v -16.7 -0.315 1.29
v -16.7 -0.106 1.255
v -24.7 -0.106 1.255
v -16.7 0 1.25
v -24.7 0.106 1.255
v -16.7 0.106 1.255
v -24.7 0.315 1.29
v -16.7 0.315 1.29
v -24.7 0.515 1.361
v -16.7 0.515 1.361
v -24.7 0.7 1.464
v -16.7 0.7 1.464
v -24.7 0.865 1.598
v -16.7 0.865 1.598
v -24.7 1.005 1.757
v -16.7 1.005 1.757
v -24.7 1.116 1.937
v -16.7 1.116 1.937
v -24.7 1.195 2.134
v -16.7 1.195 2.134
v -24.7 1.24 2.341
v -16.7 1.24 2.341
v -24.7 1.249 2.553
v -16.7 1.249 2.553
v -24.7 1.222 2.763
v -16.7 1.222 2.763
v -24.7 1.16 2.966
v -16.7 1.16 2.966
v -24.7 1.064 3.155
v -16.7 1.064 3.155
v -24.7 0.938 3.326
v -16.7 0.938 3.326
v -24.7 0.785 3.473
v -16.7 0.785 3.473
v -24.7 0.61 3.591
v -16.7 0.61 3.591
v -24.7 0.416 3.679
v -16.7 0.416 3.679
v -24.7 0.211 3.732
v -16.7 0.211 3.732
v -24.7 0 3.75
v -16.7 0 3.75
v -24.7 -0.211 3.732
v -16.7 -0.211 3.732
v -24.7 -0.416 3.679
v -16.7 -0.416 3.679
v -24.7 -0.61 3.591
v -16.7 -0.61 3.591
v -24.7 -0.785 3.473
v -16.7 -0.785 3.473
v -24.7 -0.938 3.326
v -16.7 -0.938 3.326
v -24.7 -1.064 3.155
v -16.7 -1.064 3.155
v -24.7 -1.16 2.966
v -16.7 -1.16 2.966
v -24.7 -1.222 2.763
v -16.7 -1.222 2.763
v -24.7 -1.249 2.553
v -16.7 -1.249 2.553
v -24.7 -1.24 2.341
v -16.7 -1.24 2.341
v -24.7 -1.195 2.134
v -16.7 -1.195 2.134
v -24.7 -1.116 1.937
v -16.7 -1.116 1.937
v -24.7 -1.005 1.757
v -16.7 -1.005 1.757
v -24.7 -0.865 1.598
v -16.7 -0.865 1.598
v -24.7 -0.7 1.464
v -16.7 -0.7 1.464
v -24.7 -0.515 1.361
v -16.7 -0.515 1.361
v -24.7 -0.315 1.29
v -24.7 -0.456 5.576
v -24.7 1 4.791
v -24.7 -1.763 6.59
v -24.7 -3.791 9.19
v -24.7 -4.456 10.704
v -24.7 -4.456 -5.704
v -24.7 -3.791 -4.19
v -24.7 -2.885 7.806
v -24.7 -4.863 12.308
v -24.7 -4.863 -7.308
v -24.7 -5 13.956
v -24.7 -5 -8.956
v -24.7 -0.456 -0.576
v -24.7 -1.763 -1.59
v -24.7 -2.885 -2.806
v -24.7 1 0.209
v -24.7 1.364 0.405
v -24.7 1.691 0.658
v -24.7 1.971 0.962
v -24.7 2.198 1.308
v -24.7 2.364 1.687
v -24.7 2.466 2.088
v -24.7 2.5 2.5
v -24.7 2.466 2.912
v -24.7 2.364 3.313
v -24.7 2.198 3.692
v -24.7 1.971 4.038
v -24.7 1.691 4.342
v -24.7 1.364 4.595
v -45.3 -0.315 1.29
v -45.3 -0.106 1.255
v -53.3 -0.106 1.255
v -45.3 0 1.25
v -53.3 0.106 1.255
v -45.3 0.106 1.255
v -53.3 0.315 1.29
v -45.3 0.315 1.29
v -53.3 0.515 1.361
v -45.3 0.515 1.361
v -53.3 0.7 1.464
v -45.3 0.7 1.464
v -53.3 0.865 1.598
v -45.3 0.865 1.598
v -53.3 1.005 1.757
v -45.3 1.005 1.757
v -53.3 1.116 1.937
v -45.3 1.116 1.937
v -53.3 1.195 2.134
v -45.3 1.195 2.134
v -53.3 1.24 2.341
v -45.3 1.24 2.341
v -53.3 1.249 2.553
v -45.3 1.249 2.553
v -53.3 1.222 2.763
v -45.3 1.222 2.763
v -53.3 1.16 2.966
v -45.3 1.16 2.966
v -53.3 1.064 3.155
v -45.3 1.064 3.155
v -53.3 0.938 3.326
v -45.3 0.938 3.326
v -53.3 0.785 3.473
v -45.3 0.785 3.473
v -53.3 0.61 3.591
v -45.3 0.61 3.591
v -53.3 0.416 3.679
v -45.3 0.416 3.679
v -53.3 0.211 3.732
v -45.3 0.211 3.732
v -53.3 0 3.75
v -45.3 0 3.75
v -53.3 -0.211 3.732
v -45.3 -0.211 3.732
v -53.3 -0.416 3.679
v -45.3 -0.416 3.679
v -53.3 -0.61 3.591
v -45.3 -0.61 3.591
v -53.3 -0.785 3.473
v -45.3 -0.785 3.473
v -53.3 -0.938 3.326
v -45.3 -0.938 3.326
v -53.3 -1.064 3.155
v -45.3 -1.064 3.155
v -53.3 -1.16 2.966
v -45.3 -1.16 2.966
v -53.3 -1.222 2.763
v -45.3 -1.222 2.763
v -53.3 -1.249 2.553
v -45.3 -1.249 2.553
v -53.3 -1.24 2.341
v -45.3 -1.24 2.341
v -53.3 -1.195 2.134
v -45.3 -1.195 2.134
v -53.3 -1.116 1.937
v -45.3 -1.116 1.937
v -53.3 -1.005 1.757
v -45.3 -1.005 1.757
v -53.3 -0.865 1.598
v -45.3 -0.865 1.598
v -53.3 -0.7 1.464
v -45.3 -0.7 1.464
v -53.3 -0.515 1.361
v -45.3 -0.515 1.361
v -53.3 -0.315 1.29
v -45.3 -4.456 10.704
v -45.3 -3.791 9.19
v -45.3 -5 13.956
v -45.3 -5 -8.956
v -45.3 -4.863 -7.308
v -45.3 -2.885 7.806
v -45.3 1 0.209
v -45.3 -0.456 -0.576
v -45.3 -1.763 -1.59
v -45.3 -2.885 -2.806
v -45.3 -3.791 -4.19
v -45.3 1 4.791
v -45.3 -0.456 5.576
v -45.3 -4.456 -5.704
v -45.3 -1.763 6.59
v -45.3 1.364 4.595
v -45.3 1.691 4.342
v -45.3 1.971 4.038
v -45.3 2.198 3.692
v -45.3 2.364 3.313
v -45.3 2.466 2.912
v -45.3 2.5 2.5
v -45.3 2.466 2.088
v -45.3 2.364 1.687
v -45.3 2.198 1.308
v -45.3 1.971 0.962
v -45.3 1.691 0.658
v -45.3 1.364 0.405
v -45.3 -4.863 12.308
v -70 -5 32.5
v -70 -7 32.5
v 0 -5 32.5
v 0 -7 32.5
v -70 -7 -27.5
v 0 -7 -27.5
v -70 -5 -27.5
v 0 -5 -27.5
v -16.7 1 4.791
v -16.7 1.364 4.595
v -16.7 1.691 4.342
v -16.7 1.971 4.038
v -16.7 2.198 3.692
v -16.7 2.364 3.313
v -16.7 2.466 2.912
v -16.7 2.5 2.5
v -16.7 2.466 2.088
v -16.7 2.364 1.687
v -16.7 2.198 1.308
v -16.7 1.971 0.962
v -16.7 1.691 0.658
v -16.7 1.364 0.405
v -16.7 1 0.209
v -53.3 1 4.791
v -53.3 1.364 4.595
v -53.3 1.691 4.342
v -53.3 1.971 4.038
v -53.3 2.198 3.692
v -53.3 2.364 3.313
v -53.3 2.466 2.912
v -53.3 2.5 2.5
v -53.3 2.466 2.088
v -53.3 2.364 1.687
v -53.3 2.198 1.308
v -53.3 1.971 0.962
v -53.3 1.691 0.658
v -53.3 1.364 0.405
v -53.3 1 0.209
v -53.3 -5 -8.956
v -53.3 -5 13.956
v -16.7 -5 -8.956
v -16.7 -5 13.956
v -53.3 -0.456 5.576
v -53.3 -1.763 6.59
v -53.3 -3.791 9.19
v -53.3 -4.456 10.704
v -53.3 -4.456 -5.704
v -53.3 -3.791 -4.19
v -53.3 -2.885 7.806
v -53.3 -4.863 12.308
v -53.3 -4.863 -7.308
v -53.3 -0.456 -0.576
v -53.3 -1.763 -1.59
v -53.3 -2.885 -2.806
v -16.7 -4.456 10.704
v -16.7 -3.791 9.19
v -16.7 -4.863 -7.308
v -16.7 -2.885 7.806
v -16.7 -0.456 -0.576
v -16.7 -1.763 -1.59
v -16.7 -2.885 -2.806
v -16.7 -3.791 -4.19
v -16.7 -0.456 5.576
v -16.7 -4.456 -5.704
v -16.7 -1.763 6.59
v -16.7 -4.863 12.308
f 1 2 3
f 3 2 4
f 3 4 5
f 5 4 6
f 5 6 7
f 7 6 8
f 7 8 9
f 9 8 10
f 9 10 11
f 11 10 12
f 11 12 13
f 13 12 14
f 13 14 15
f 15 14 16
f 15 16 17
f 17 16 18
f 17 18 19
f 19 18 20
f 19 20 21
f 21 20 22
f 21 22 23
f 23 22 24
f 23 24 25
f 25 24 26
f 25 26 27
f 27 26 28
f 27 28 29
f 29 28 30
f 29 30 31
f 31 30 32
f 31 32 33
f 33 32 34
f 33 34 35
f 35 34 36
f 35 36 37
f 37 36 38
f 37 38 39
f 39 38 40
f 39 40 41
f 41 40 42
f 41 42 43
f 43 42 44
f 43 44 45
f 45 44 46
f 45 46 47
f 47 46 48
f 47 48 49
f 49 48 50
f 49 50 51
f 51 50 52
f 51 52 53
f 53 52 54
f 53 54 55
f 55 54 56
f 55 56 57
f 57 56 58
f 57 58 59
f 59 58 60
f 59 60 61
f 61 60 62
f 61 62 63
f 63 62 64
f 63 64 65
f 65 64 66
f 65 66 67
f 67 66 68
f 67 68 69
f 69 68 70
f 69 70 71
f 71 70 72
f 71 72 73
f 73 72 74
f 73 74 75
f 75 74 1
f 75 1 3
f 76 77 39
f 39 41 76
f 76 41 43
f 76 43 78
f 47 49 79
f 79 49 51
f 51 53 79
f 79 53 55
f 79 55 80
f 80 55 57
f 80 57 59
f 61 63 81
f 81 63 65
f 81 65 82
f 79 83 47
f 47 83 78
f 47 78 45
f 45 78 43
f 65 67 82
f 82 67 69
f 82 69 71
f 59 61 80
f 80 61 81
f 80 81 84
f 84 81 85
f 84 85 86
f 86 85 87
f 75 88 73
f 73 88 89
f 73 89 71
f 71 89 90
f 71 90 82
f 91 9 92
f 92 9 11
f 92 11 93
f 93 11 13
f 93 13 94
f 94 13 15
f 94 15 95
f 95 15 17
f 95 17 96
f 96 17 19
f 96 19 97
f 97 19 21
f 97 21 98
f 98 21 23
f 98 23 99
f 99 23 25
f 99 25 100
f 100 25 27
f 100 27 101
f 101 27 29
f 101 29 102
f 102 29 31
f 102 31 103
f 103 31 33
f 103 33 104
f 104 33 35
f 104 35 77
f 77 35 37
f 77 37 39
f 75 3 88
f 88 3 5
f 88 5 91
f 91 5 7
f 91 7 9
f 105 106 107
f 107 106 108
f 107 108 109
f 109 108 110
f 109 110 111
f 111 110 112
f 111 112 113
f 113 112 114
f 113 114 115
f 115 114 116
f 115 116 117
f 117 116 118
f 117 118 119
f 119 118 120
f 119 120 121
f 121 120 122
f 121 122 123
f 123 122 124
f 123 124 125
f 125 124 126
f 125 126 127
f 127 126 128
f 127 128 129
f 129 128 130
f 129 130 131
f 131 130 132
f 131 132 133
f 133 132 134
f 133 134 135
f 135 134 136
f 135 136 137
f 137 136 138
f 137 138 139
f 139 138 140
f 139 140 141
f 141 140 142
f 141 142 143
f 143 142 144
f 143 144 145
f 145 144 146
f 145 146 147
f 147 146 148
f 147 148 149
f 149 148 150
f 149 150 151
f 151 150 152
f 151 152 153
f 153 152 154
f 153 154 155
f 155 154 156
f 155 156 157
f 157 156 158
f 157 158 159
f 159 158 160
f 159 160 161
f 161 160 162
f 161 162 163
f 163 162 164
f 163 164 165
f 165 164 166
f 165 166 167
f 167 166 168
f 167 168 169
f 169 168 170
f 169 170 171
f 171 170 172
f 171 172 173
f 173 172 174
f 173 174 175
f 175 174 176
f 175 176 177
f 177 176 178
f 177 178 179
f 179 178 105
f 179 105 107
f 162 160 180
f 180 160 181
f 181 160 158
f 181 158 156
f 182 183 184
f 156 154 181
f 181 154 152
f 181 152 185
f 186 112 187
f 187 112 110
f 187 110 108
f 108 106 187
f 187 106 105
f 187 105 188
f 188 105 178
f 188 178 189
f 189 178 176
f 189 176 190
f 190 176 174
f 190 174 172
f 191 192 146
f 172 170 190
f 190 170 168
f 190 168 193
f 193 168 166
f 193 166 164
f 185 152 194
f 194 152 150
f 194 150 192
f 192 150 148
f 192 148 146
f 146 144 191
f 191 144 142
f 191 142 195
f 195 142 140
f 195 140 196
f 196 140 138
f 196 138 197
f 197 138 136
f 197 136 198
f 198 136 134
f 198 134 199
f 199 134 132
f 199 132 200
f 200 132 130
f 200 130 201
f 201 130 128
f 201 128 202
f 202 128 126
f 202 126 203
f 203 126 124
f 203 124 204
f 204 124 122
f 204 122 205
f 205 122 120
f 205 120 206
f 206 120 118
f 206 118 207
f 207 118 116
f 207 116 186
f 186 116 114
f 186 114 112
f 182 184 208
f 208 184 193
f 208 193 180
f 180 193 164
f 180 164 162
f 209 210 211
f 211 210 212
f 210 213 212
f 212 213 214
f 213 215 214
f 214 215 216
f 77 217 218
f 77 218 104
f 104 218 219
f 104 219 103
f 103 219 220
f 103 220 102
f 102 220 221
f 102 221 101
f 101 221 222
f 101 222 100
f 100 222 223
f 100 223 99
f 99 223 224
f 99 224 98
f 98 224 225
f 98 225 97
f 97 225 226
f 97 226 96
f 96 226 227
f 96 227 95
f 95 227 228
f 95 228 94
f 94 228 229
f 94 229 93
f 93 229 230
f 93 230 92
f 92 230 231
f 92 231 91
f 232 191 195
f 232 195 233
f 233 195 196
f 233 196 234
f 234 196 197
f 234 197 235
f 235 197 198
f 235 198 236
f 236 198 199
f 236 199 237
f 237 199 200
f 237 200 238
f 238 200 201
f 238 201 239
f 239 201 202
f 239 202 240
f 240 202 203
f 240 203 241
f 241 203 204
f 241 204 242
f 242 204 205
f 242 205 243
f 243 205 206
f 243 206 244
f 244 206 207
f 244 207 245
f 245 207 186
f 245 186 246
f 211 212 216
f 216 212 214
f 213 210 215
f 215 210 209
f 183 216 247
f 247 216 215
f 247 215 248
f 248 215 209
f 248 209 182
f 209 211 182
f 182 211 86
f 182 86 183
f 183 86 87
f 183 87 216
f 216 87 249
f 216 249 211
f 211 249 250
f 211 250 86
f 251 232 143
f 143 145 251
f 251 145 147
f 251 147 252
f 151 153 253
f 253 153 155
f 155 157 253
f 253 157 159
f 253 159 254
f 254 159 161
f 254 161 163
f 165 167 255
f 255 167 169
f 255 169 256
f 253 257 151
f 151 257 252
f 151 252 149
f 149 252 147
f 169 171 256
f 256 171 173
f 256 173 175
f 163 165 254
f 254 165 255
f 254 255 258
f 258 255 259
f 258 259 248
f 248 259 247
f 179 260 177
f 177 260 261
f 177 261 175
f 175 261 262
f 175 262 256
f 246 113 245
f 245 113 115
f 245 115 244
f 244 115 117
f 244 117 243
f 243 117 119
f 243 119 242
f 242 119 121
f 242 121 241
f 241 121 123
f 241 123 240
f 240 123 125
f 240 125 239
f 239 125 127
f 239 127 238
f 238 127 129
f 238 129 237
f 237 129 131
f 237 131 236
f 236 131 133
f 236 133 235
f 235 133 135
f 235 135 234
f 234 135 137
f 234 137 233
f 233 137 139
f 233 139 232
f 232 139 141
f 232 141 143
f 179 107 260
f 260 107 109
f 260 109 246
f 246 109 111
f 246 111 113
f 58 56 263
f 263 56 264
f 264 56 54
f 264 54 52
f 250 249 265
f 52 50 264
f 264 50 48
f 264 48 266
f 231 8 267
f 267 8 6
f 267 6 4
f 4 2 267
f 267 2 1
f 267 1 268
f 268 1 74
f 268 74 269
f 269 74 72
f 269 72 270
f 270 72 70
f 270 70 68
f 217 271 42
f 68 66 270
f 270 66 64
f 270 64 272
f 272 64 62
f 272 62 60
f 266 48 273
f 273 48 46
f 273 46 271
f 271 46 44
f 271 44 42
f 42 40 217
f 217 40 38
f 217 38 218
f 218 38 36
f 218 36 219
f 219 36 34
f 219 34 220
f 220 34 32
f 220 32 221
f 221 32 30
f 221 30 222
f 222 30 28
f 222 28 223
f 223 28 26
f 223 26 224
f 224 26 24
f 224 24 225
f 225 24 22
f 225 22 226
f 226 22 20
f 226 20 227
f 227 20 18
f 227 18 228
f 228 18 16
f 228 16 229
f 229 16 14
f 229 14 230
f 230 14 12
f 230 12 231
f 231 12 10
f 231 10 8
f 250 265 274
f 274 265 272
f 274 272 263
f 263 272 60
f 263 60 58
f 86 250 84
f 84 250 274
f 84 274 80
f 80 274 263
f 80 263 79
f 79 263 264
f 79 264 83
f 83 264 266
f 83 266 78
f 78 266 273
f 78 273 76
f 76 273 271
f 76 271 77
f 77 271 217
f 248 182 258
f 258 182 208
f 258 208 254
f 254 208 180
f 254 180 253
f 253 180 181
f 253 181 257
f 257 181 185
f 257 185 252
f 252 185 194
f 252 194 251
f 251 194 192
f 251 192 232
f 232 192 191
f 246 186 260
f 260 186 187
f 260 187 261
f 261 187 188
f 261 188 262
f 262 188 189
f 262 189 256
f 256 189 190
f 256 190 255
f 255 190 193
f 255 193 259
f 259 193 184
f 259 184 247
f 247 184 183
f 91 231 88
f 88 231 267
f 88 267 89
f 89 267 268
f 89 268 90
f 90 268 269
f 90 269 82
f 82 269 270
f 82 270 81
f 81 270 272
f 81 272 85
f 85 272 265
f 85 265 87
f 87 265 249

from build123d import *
from build123d.topology import SkipClean

# Parameters (mm, degrees)
SKETCH1_W           = 20
SKETCH1_H           = 60
BOSS_EXTRUDE1_DEPTH = 5
SKETCH2_R           = 2.5
SKETCH2_R_2         = 1.25
BOSS_EXTRUDE2_DEPTH = 20
CUT_EXTRUDE1_START  = -29
SKETCH3_R           = 1.25
CUT_EXTRUDE1_DEPTH  = 29
SKETCH4_R           = 2.5
SKETCH4_R_2         = 1.25
BOSS_EXTRUDE3_DEPTH = 20
CUT_EXTRUDE2_START  = -29
SKETCH5_R           = 1.25
CUT_EXTRUDE2_DEPTH  = 29
BOSS_EXTRUDE4_START = 70
SKETCH7_R           = 1.25
BOSS_EXTRUDE4_DEPTH = 70
SKETCH8_W           = 20.6
SKETCH8_H           = 18.256228475
SKETCH8_W_2         = 16.7
SKETCH8_H_2         = 28.46865204
SKETCH8_H_3         = 26.746757763
CUT_EXTRUDE4_DEPTH  = 84
SKETCH9_W           = 45.88716948
SKETCH9_H           = 69.445914147
CUT_EXTRUDE5_DEPTH  = 115
FILLET1_R           = 10


with BuildPart() as part:
    # Sketch1 → Boss-Extrude1 (new body)
    with BuildSketch(Plane.XY):
        with Locations((10, 30)):
            Rectangle(SKETCH1_W, SKETCH1_H)
    extrude(amount=BOSS_EXTRUDE1_DEPTH)

    # Sketch2 → Boss-Extrude2 (add)
    with BuildSketch(Plane(origin=(20, 0, 0), x_dir=(0, 0, -1), z_dir=(1, 0, 0))):
        with Locations((-2.5, 60)):
            Circle(SKETCH2_R)
        with Locations((-2.5, 60)):
            Circle(SKETCH2_R_2, mode=Mode.SUBTRACT)
    extrude(amount=-BOSS_EXTRUDE2_DEPTH)

    # Sketch3 → Cut-Extrude1 (cut)
    with SkipClean():  # the faces are left unmerged after this step: merging them gives an invalid solid
        with BuildSketch(Plane.ZY.offset(CUT_EXTRUDE1_START)):
            with Locations(Location((2.5, 60, 0), (0, 0, 180))):
                Circle(SKETCH3_R)
        extrude(amount=CUT_EXTRUDE1_DEPTH, mode=Mode.SUBTRACT)

    # Sketch4 → Boss-Extrude3 (add)
    with BuildSketch(Plane.ZY):
        with Locations((2.5, 0)):
            Circle(SKETCH4_R)
        with Locations((2.5, 0)):
            Circle(SKETCH4_R_2, mode=Mode.SUBTRACT)
    extrude(amount=-BOSS_EXTRUDE3_DEPTH)

    # Sketch5 → Cut-Extrude2 (cut)
    with SkipClean():  # the faces are left unmerged after this step: merging them gives an invalid solid
        with BuildSketch(Plane(origin=(20, 0, 0), x_dir=(0, 0, -1), z_dir=(1, 0, 0)).offset(CUT_EXTRUDE2_START)):
            with Locations(Location((-2.5, 0, 0), (0, 0, 180))):
                Circle(SKETCH5_R)
        extrude(amount=CUT_EXTRUDE2_DEPTH, mode=Mode.SUBTRACT)

    # Sketch7 → Boss-Extrude4 (add)
    # profile 1 of 2: a face of its own
    with SkipClean():  # the faces are left unmerged after this step: merging them gives an invalid solid
        with BuildSketch(Plane.ZY.offset(BOSS_EXTRUDE4_START)):
            with BuildLine():
                Line((0, -5), (-27.5, -5))
                Line((-27.5, -5), (-27.5, -7))
                Line((-27.5, -7), (32.5, -7))
                Line((32.5, -7), (32.5, -5))
                Line((32.5, -5), (5, -5))
                Line((5, -5), (5, 0))
                ThreePointArc((5, 0), (2.5, -2.5), (0, 0))
                Line((0, 0), (0, -5))
            make_face()
        # profile 2 of 2: a face of its own
        with BuildSketch(Plane.ZY.offset(BOSS_EXTRUDE4_START)):
            with BuildLine():
                ThreePointArc((5, 0), (2.5, 2.5), (0, 0))
                ThreePointArc((0, 0), (2.5, -2.5), (5, 0))
            make_face()
            with Locations((2.5, 0)):
                Circle(SKETCH7_R, mode=Mode.SUBTRACT)
        extrude(amount=-BOSS_EXTRUDE4_DEPTH)

    # Sketch8 → Cut-Extrude4 (cut)
    with SkipClean():  # the faces are left unmerged after this step: merging them gives an invalid solid
        with BuildSketch(Plane(origin=(0, -5, 0), x_dir=(1, 0, 0), z_dir=(0, 1, 0))):
            with Locations((-35, -1.601019052)):
                Rectangle(SKETCH8_W, SKETCH8_H)
            with Locations((-8.35, -2.689028032)):
                Rectangle(SKETCH8_W_2, SKETCH8_H_2)
            with Locations((-61.65, -3.54997517)):
                Rectangle(SKETCH8_W_2, SKETCH8_H_3)
        extrude(amount=CUT_EXTRUDE4_DEPTH, mode=Mode.SUBTRACT)


with BuildPart() as cut_extrude4_piece_1:
    # of the separate pieces the step leaves, piece 1, a body of its own (cut_extrude4_pieces)
    add(part.part.solids().sort_by_distance((0, -5, 0))[0])

    # Fillet1
    # the kernel refuses this fillet: 10 mm, written as the material it adds along each edge
    with BuildSketch(Plane(origin=(-47.091098093, -5, 5), x_dir=(0, 0, 1), z_dir=(1, 0, 0))) as fillet1_piece_1_section:
        with BuildLine():
            CenterArc((8.956439237, -10), FILLET1_R, 90, 66.421821522)
            Line((-0.208712153, -6), (-1.125227292, -5.6))
            ThreePointArc((-1.125227292, -5.6), (-1, -5), (-1, 0))
            Line((-1, 0), (0, 1))
            Line((0, 1), (8.956439237, 1))
            Line((8.956439237, 1), (8.956439237, 0))
        make_face()
    fillet1_piece_1 = extrude(amount=30.391098093, mode=Mode.PRIVATE)
    fillet1_piece_1 = split(fillet1_piece_1, bisect_by=Plane(origin=(-45.3, -3.872690531, 7.347841943), z_dir=(-1, 0, 0)), keep=Keep.TOP, mode=Mode.PRIVATE)
    add(fillet1_piece_1)
    with BuildSketch(Plane(origin=(-24.7, -5, 5), x_dir=(0, 0, 1), z_dir=(1, 0, 0)), Plane(origin=(-53.3, -5, 5), x_dir=(0, 0, 1), z_dir=(1, 0, 0))) as fillet1_piece_2:
        with BuildLine():
            CenterArc((8.956439237, -10), FILLET1_R, 90, 66.421821522)
            Line((-0.208712153, -6), (-1.125227292, -5.6))
            ThreePointArc((-1.125227292, -5.6), (-1, -5), (-1, 0))
            Line((-1, 0), (0, 1))
            Line((0, 1), (8.956439237, 1))
            Line((8.956439237, 1), (8.956439237, 0))
        make_face()
    extrude(amount=8)
    with BuildSketch(Plane(origin=(-53.3, -5, 5), x_dir=(0, 0, 1), z_dir=(1, 0, 0))) as fillet1_piece_3_section:
        with BuildLine():
            CenterArc((8.956439237, -10), FILLET1_R, 90, 66.421821522)
            Line((-0.208712153, -6), (-1.125227292, -5.6))
            ThreePointArc((-1.125227292, -5.6), (-1, -5), (-1, 0))
            Line((-1, 0), (0, 1))
            Line((0, 1), (8.956439237, 1))
            Line((8.956439237, 1), (8.956439237, 0))
        make_face()
    fillet1_piece_3 = extrude(amount=30.391098093, mode=Mode.PRIVATE)
    fillet1_piece_3 = split(fillet1_piece_3, bisect_by=Plane(origin=(-24.7, -3.872690531, 7.347841943), z_dir=(1, 0, 0)), keep=Keep.TOP, mode=Mode.PRIVATE)
    add(fillet1_piece_3)
    with BuildSketch(Plane(origin=(-53.3, -5, 0), x_dir=(0, 0, -1), z_dir=(1, 0, 0)), Plane(origin=(-24.7, -5, 0), x_dir=(0, 0, -1), z_dir=(1, 0, 0))) as fillet1_piece_4:
        with BuildLine():
            CenterArc((8.956439237, 10), FILLET1_R, 203.578178478, 66.421821522)
            Line((-0.208712153, 6), (-1.125227292, 5.6))
            ThreePointArc((-1.125227292, 5.6), (-1, 5), (-1, 0))
            Line((-1, 0), (0, -1))
            Line((0, -1), (8.956439237, -1))
            Line((8.956439237, -1), (8.956439237, 0))
        make_face()
    extrude(amount=8)
    with BuildSketch(Plane(origin=(-53.3, -5, 0), x_dir=(0, 0, -1), z_dir=(1, 0, 0))) as fillet1_piece_5_section:
        with BuildLine():
            CenterArc((8.956439237, 10), FILLET1_R, 203.578178478, 66.421821522)
            Line((-0.208712153, 6), (-1.125227292, 5.6))
            ThreePointArc((-1.125227292, 5.6), (-1, 5), (-1, 0))
            Line((-1, 0), (0, -1))
            Line((0, -1), (8.956439237, -1))
            Line((8.956439237, -1), (8.956439237, 0))
        make_face()
    fillet1_piece_5 = extrude(amount=30.391098093, mode=Mode.PRIVATE)
    fillet1_piece_5 = split(fillet1_piece_5, bisect_by=Plane(origin=(-24.7, -3.872690531, -2.347841943), z_dir=(1, 0, 0)), keep=Keep.TOP, mode=Mode.PRIVATE)
    add(fillet1_piece_5)
    with BuildSketch(Plane(origin=(-47.091098093, -5, 0), x_dir=(0, 0, -1), z_dir=(1, 0, 0))) as fillet1_piece_6_section:
        with BuildLine():
            CenterArc((8.956439237, 10), FILLET1_R, 203.578178478, 66.421821522)
            Line((-0.208712153, 6), (-1.125227292, 5.6))
            ThreePointArc((-1.125227292, 5.6), (-1, 5), (-1, 0))
            Line((-1, 0), (0, -1))
            Line((0, -1), (8.956439237, -1))
            Line((8.956439237, -1), (8.956439237, 0))
        make_face()
    fillet1_piece_6 = extrude(amount=30.391098093, mode=Mode.PRIVATE)
    fillet1_piece_6 = split(fillet1_piece_6, bisect_by=Plane(origin=(-45.3, -3.872690531, -2.347841943), z_dir=(-1, 0, 0)), keep=Keep.TOP, mode=Mode.PRIVATE)
    add(fillet1_piece_6)


with BuildPart() as cut_extrude4_piece_2:
    # of the separate pieces the step leaves, piece 2, a body of its own (cut_extrude4_pieces)
    add(part.part.solids().sort_by_distance((20, 0, 0))[0])

    # Sketch9 → Cut-Extrude5 (cut)
    with BuildSketch(Plane(origin=(-16.7, 0, 0), x_dir=(0, 0, -1), z_dir=(1, 0, 0))):
        with Locations((-3.398393378, 29.722957074)):
            Rectangle(SKETCH9_W, SKETCH9_H)
    extrude(amount=CUT_EXTRUDE5_DEPTH, mode=Mode.SUBTRACT)


solid = cut_extrude4_piece_1.part
